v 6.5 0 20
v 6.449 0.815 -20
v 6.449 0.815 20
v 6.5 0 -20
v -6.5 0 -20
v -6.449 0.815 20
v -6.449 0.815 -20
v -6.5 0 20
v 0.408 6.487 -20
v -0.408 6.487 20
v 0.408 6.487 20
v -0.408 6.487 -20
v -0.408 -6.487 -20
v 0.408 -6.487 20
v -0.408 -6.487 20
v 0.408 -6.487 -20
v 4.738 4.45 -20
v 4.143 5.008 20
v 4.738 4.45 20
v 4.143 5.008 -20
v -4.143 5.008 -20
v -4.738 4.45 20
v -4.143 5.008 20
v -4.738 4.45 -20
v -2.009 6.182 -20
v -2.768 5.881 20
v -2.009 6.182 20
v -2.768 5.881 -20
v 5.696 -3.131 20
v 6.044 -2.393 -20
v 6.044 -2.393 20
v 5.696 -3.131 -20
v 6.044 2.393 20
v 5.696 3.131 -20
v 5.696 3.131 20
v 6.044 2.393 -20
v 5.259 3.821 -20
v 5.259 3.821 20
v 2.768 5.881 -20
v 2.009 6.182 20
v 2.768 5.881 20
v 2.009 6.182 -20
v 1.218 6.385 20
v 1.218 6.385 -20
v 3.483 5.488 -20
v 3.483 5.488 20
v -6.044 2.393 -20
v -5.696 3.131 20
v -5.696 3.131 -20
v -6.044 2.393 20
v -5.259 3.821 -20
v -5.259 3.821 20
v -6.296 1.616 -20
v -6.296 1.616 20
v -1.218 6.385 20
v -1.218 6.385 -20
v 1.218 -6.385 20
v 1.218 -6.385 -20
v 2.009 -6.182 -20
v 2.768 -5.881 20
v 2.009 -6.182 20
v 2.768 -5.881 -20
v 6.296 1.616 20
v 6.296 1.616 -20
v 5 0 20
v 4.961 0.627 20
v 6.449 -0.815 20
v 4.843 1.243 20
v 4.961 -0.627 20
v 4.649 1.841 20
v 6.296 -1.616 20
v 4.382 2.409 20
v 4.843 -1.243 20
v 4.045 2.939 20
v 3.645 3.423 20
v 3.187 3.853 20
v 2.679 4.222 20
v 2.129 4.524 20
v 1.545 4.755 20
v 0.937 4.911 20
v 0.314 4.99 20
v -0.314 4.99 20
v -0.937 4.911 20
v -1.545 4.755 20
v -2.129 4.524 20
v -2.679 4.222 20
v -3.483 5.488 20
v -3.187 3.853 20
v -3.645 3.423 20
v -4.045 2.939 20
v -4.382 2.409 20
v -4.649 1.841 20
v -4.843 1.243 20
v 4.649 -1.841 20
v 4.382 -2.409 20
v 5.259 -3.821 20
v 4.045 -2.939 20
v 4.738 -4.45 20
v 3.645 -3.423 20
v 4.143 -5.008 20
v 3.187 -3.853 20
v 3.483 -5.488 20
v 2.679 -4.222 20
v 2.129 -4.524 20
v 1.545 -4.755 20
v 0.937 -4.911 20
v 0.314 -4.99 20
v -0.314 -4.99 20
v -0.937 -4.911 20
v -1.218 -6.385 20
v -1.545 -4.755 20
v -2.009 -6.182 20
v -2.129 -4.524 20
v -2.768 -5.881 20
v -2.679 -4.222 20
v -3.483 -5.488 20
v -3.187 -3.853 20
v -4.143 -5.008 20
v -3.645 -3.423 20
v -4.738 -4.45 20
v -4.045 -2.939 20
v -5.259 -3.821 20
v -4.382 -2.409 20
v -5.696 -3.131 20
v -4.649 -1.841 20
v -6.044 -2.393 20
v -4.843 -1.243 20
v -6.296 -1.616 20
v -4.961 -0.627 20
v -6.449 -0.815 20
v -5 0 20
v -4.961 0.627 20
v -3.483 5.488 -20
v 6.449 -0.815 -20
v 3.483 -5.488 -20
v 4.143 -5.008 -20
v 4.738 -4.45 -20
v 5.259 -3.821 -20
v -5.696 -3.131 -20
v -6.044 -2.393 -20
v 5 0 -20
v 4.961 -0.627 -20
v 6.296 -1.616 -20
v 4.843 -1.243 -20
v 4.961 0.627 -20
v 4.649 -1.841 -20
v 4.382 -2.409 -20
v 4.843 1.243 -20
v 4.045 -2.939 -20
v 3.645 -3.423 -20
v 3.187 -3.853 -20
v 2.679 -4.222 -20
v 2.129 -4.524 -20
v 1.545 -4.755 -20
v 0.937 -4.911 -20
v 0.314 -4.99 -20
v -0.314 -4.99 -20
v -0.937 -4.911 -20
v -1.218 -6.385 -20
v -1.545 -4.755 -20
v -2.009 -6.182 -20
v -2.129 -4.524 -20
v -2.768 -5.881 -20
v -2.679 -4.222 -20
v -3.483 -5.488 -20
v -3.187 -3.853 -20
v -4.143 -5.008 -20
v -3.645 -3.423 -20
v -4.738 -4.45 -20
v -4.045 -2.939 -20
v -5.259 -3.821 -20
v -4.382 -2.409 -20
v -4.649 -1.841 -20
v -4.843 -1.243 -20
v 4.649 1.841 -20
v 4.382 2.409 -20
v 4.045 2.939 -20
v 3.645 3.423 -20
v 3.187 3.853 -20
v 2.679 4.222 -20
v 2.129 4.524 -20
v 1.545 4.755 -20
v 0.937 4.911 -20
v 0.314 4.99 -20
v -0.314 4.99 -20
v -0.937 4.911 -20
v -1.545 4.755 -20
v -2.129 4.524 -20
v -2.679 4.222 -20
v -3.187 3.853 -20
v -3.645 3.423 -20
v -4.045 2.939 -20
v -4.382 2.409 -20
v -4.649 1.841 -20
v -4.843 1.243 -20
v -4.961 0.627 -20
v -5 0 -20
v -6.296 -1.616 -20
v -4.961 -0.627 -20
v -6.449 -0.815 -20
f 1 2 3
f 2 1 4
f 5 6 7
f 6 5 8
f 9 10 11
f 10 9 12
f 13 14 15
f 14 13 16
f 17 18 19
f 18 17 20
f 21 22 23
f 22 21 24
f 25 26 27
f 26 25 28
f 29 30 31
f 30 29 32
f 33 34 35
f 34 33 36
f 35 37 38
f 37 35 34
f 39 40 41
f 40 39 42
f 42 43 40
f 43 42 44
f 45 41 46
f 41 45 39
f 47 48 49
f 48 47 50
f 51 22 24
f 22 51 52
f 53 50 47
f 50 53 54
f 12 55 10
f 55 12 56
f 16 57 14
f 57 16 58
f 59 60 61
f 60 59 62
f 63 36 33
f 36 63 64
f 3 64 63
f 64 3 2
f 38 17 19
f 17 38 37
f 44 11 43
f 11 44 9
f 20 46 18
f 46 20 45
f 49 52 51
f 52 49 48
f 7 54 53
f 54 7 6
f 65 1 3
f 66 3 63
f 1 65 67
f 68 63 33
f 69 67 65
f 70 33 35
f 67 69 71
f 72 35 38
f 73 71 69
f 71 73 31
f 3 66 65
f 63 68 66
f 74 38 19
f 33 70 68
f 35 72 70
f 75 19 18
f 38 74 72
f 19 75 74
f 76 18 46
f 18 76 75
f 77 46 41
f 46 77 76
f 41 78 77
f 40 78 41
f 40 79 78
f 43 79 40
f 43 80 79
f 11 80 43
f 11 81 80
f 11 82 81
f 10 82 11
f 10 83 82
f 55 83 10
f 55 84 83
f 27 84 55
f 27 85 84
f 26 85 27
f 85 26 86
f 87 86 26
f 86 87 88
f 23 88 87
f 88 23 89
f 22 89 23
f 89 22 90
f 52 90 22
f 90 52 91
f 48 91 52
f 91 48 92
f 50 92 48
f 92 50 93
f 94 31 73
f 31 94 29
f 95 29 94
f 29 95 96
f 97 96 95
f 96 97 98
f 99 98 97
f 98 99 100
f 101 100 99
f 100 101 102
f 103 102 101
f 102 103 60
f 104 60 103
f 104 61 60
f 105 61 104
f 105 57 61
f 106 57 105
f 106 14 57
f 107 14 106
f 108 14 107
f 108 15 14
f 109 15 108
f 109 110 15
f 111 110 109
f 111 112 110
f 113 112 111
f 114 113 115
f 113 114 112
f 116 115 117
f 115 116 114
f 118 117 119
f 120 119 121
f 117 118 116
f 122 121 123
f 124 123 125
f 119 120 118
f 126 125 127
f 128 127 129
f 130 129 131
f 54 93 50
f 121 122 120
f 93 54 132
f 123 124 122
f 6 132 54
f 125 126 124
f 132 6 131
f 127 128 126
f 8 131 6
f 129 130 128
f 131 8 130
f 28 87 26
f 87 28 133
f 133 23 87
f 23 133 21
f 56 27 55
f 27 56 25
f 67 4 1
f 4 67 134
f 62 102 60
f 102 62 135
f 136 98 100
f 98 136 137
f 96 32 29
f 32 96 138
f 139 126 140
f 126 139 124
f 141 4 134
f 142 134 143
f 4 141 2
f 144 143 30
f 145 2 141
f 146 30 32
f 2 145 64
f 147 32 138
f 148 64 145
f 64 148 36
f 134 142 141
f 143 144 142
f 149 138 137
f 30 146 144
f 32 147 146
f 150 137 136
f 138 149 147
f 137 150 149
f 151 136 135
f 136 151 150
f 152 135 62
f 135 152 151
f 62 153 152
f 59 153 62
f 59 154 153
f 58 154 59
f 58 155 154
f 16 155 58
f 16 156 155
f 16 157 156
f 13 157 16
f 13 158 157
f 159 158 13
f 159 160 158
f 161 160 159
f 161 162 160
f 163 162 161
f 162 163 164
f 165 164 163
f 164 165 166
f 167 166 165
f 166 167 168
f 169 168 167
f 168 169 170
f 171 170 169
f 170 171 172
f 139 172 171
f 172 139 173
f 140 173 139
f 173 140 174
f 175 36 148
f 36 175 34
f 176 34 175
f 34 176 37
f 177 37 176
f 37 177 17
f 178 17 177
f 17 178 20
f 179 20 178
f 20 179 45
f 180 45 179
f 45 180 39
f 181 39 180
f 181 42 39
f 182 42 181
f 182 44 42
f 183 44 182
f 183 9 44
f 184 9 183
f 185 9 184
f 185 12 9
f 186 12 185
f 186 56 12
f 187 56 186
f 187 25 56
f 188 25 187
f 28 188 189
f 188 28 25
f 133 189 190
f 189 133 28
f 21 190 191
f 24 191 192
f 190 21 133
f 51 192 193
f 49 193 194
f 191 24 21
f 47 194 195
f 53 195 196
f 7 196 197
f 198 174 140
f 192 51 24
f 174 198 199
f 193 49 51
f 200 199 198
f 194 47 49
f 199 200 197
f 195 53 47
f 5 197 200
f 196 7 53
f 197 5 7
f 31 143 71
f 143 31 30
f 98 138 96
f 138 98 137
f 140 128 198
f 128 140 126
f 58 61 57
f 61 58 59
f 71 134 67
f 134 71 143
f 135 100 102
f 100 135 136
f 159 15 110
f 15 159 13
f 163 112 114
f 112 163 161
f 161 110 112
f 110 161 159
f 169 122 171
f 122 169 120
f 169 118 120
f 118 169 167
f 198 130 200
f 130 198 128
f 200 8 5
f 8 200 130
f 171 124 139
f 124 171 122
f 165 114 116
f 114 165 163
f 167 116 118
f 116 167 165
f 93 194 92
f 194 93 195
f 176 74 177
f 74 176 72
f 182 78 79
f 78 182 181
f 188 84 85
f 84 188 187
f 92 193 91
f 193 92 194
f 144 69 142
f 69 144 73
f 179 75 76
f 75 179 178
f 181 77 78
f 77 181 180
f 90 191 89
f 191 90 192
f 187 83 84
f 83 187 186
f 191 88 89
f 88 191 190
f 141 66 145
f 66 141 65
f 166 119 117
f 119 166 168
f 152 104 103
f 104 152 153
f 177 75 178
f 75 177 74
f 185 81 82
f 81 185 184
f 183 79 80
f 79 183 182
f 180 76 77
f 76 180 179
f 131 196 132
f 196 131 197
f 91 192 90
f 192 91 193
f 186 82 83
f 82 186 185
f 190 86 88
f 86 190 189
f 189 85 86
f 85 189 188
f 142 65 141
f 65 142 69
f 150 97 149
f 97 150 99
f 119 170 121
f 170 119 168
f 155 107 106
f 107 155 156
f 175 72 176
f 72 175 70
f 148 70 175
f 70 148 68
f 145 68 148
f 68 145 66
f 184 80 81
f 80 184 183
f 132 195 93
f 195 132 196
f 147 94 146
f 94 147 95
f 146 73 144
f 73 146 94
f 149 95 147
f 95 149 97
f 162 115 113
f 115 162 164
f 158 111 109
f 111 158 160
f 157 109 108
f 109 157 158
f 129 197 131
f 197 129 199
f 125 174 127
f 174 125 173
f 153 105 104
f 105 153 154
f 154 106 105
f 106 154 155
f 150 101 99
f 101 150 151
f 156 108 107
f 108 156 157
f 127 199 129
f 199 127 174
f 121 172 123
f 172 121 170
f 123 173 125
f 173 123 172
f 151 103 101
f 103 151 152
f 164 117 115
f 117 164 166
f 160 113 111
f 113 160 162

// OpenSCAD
$fn = 50;


difference() {
	union() {
		translate(v = [0, 0, -20.0000000000]) {
			cylinder(h = 40, r = 6.5000000000);
		}
	}
	union() {
		translate(v = [0, 0, -100.0000000000]) {
			cylinder(h = 200, r = 5.0000000000);
		}
	}
}
